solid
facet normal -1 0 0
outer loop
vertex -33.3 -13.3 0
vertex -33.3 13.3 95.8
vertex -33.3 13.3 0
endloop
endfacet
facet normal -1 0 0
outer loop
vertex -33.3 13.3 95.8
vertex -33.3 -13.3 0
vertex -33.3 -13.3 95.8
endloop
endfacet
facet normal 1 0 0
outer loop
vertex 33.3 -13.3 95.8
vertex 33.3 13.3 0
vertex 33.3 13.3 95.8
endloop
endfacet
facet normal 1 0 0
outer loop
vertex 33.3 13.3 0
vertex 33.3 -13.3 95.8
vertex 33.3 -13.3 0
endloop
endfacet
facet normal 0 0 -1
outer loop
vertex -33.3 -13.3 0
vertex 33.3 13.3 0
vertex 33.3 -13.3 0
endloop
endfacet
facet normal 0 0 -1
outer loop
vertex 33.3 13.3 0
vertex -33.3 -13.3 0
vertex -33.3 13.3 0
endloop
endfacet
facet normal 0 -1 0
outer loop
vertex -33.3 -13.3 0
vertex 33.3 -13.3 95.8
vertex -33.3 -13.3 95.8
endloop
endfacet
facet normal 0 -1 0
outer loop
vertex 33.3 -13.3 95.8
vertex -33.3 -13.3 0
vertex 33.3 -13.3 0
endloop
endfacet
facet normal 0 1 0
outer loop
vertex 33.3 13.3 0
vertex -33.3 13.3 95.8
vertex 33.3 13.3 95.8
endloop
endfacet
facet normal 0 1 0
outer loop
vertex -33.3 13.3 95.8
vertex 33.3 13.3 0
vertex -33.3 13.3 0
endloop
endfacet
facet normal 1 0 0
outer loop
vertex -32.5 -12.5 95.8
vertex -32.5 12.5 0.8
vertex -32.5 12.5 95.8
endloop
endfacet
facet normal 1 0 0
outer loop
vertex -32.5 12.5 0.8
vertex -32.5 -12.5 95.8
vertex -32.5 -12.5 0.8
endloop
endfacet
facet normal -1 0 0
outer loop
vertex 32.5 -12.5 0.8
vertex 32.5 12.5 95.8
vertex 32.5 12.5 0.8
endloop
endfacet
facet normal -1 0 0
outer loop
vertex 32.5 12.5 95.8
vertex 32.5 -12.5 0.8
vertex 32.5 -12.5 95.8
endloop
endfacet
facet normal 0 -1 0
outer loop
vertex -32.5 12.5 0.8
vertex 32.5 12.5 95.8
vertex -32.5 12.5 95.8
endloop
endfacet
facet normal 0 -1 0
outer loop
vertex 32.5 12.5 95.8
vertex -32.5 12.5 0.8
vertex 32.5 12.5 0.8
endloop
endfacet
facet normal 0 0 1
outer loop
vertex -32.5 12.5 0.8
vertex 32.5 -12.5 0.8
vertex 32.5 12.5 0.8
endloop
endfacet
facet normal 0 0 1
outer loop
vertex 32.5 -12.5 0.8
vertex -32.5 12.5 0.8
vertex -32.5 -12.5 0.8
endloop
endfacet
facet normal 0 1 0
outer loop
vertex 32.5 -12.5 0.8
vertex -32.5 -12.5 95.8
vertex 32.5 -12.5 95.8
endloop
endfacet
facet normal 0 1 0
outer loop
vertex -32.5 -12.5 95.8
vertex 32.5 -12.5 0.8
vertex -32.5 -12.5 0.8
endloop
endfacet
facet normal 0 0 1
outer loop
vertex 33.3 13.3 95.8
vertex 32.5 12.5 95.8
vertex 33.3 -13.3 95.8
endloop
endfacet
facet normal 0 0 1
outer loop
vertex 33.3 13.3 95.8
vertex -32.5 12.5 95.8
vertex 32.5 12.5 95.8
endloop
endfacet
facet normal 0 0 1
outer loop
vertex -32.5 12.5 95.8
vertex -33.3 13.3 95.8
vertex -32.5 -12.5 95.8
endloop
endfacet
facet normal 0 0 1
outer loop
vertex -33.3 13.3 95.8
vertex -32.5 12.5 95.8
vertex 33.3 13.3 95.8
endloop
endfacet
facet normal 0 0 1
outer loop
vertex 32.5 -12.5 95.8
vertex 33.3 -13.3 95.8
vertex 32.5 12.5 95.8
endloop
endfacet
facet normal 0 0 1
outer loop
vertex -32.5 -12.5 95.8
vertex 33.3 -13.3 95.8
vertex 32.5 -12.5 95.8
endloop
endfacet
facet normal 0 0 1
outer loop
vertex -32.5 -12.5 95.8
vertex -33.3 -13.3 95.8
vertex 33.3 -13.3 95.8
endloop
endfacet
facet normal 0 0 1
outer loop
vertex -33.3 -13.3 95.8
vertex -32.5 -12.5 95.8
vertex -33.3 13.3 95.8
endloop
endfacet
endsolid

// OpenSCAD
// Customizable Simple Box
//

// Choose Fix Type
BoxFixType = "None"; // [None:None, Hook:Hook, Ender3:Ender3]
// Choose Box Type
BoxType = "Hinge"; // [Press:PressLid, Hinge:HingeLid]
// Choose Hinge Type
HingeTyp = "Build"; // [Build:Build, Metal:Metal]
// Choose Part
BuildPart = "Box"; // [Both:Both, Box:Box, Lid:Lid]
// Box Innner Length
BoxInnerLength = 65;
// Box Innner Height
BoxHeight = 95;
// Box Width, Add Comma Seperated Values for Multi Compartments
BoxInnerCompartmentWidth = [25];
// Box Lid Height
BoxLidHeight = 20;
// Wall Thickness. Choose carefully so your printer can make at least 2 outlines at the narrowest BuildPart (top of the box and lid). For 0.4 nozzle this should be at least 1.6.
BoxWallThickness = 0.8; // [0.2:.1:10]
// Space between lid and box top. The smaller this parameter will be, the tighter box will close.
LidGap = .5; // [.2:0.05:1.0]

// Calculates the Total Inner Width by counting all the width entires
function sum(v, i=0, j=20) = len(v) > i && i <= j ? v[i] + sum(v, i+1, j) : 0;

totalBoxWidth = sum(BoxInnerCompartmentWidth) + (len(BoxInnerCompartmentWidth) - 1) * BoxWallThickness;
// For Internal Use do not change, it there to OpenSCAD boolean operation to work, small number to create polygons properly
smallOffset = .01;
wallOffset = BoxWallThickness * 2;


module BuildBox() 
{
	// Build Full Box
	difference() 
	{
		// Box outer cube
		cube([BoxInnerLength + wallOffset, totalBoxWidth + wallOffset, BoxHeight + wallOffset - LidGap]);
		// Box inner cube
		translate([BoxWallThickness, BoxWallThickness, BoxWallThickness])
			cube([BoxInnerLength, totalBoxWidth, BoxHeight + smallOffset]); 
			
		if(BoxType == "Press")
		{
			//Build Box Side of Lid Lip
			translate([0, totalBoxWidth + wallOffset, BoxHeight + wallOffset])
				rotate(a = 180, v = [1, 0, 0])
					BuildLid(true);
		}
		else if (BoxType == "Hinge")
		{
			//Cutout Top for openning
			translate([-smallOffset, -smallOffset, BoxHeight + wallOffset - BoxWallThickness])
				cube([BoxInnerLength + wallOffset + smallOffset * 2, totalBoxWidth + wallOffset + smallOffset * 2, 
				BoxWallThickness + smallOffset]);
		}
	}
	// Build inner partition if box has more compartment
    if (len(BoxInnerCompartmentWidth) > 1)
	{
		for (i=[0:len(BoxInnerCompartmentWidth) - 2])
		{
			translate([BoxWallThickness, 
				BoxWallThickness + sum(BoxInnerCompartmentWidth, 0, i) + i * BoxWallThickness, BoxWallThickness])
				cube([BoxInnerLength, BoxWallThickness, BoxHeight]);
		}
	}
}

module BuildLid(buildMale = false) 
{
	if(BoxType == "Press")
	{
		innerLibBoxOffset = buildMale?1:-1;
		outerLidBoxOffset = buildMale?1:0;
		difference() 
		{
			translate([-smallOffset * outerLidBoxOffset, -smallOffset * outerLidBoxOffset,
				-smallOffset * outerLidBoxOffset])
				cube([BoxInnerLength + wallOffset + 2 * smallOffset * outerLidBoxOffset, 
					totalBoxWidth + wallOffset + 2 * smallOffset * outerLidBoxOffset, BoxLidHeight + smallOffset]);
			translate([BoxWallThickness / 2 + LidGap / 2 * innerLibBoxOffset,
				BoxWallThickness / 2 + LidGap / 2 * innerLibBoxOffset, BoxWallThickness])
				cube([BoxInnerLength + BoxWallThickness - LidGap * innerLibBoxOffset, 
					totalBoxWidth + BoxWallThickness - LidGap * innerLibBoxOffset, BoxLidHeight]);
		}
	}
	else if (BoxType == "Hinge")
	{
		difference() 
		{
			// Box outer cube
			cube([BoxInnerLength + wallOffset, totalBoxWidth + wallOffset, BoxLidHeight + wallOffset - LidGap]);
			// Box inner cube
			translate([BoxWallThickness, BoxWallThickness, BoxWallThickness])
				cube([BoxInnerLength, totalBoxWidth, BoxLidHeight + smallOffset]); 
			//Cutout Top for openning
			translate([-smallOffset, -smallOffset, BoxLidHeight + wallOffset - BoxWallThickness])
				cube([BoxInnerLength + wallOffset + smallOffset * 2, 
				totalBoxWidth + wallOffset + smallOffset * 2, BoxWallThickness + smallOffset]);
		}
	}
}

if (BuildPart == "Box")
{
	translate([-BoxInnerLength / 2 - BoxWallThickness, -totalBoxWidth / 2 - BoxWallThickness, 0])
		BuildBox();
}
else if (BuildPart == "Lid")
{
	translate([-BoxInnerLength / 2 - BoxWallThickness, -totalBoxWidth / 2 - BoxWallThickness, 0])
		BuildLid();
}
else 
{
	translate([-BoxInnerLength / 2 - BoxWallThickness, -totalBoxWidth - wallOffset - 5, 0])
		BuildBox();
	translate([-BoxInnerLength / 2 - BoxWallThickness, 5, 0])
		BuildLid();
}
